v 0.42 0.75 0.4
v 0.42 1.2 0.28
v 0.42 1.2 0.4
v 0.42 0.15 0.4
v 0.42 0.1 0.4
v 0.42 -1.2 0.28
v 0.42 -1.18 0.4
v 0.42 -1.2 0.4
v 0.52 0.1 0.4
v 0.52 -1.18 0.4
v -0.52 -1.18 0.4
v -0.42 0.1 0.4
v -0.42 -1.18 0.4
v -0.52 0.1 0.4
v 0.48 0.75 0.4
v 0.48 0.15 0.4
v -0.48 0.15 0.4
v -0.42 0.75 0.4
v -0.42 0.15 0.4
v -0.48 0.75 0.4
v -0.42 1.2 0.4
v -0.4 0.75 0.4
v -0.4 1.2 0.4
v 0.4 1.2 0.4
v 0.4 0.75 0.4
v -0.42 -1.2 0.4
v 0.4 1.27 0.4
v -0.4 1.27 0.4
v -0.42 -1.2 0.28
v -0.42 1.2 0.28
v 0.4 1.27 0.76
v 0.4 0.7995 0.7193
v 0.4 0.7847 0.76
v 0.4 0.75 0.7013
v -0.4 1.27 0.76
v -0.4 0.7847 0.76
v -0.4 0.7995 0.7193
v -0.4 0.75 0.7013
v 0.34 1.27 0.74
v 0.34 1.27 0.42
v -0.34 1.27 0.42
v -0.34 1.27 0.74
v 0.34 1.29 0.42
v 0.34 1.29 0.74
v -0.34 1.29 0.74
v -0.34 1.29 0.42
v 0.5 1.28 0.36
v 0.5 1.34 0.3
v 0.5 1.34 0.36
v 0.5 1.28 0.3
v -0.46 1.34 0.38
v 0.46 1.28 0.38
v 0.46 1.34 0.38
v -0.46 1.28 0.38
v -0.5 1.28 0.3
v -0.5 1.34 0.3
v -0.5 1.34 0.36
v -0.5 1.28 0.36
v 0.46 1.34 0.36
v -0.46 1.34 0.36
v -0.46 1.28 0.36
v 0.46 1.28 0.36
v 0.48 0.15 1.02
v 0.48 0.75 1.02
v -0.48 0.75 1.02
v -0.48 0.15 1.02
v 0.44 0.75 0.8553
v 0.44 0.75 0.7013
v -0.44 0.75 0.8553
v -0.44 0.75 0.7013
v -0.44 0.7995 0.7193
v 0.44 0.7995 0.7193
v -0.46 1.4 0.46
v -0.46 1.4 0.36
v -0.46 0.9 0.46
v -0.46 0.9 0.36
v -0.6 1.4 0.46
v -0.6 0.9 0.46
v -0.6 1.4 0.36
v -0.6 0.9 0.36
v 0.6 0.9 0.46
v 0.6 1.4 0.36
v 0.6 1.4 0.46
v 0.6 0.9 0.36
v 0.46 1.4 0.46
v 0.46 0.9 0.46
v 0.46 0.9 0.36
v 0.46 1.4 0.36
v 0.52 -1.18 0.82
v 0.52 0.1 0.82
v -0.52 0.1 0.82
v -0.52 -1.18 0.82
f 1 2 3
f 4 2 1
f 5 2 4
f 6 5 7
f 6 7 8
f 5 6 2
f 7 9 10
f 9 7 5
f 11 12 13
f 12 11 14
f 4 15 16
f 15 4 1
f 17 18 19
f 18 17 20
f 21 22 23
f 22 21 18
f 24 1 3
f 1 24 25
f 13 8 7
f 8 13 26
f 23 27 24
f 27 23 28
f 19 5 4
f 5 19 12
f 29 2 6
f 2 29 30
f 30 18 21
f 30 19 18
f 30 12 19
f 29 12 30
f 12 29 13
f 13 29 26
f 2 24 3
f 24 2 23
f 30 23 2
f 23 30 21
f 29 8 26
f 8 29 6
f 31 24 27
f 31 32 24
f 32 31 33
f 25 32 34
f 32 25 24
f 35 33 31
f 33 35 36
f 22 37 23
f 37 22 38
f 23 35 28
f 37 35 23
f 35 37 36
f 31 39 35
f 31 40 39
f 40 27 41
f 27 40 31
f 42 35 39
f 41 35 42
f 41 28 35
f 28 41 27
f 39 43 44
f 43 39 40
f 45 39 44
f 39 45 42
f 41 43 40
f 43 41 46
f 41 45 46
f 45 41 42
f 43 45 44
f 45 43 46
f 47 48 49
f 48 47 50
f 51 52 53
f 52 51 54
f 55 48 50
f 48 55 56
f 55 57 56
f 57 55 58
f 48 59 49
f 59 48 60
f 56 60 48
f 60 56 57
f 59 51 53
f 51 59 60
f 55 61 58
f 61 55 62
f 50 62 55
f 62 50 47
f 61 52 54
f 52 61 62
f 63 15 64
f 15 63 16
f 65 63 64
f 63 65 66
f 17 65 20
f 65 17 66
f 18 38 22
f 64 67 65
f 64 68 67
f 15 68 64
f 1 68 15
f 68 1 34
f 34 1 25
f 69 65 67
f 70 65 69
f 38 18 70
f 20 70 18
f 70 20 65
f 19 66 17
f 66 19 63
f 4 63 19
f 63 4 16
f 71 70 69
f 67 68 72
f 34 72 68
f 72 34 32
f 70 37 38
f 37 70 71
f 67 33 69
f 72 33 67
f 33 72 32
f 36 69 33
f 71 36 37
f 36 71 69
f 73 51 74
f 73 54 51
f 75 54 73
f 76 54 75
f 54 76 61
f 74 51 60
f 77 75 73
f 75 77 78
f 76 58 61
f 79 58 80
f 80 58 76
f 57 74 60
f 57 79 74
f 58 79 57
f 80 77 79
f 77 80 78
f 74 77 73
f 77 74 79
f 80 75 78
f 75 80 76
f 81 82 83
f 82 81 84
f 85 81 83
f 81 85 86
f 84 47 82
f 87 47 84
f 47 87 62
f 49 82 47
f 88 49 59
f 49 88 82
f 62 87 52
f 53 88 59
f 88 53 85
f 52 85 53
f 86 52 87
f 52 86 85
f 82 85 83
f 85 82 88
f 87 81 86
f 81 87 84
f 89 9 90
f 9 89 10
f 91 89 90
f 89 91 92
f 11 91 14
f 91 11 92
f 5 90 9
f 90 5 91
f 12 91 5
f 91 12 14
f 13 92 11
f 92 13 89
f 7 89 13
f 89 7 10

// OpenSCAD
union() {
  union() {
    union() {
      union() {
        union() {
          union() {
            union() {
              union() {
                translate([-0.42, 0, 0]) {
                  translate([0, -1.2, 0]) {
                    translate([0, 0, 0.28]) {
                      cube([0.84, 2.4, 0.12]);
                    }
                  }
                }
                translate([-0.4, 0, 0]) {
                  translate([0, 0.72, 0]) {
                    translate([0, 0, 0.4]) {
                      cube([0.8, 0.55, 0.36]);
                    }
                  }
                }
              }
              translate([-0.34, 0, 0]) {
                translate([0, 1.25, 0]) {
                  translate([0, 0, 0.42]) {
                    cube([0.68, 4.0e-2, 0.32]);
                  }
                }
              }
            }
            translate([-0.5, 0, 0]) {
              translate([0, 1.28, 0]) {
                translate([0, 0, 0.3]) {
                  cube([1.0, 6.0e-2, 8.0e-2]);
                }
              }
            }
          }
          translate([-0.48, 0, 0]) {
            translate([0, 0.15, 0]) {
              translate([0, 0, 0.4]) {
                cube([0.96, 0.6, 0.62]);
              }
            }
          }
        }
        translate([0, 0.72, 0]) {
          translate([0, 0, 0.85]) {
            rotate([20.0, 0, 0]) {
              translate([-0.44, 0, 0]) {
                translate([0, -3.0e-2, 0]) {
                  translate([0, 0, -0.15]) {
                    cube([0.88, 6.0e-2, 0.3]);
                  }
                }
              }
            }
          }
        }
      }
      translate([-0.6, 0, 0]) {
        translate([0, 0.9, 0]) {
          translate([0, 0, 0.36]) {
            cube([0.14, 0.5, 0.1]);
          }
        }
      }
    }
    translate([0.46, 0, 0]) {
      translate([0, 0.9, 0]) {
        translate([0, 0, 0.36]) {
          cube([0.14, 0.5, 0.1]);
        }
      }
    }
  }
  translate([-0.52, 0, 0]) {
    translate([0, -1.18, 0]) {
      translate([0, 0, 0.4]) {
        cube([1.04, 1.28, 0.42]);
      }
    }
  }
}
$fn = 50;
